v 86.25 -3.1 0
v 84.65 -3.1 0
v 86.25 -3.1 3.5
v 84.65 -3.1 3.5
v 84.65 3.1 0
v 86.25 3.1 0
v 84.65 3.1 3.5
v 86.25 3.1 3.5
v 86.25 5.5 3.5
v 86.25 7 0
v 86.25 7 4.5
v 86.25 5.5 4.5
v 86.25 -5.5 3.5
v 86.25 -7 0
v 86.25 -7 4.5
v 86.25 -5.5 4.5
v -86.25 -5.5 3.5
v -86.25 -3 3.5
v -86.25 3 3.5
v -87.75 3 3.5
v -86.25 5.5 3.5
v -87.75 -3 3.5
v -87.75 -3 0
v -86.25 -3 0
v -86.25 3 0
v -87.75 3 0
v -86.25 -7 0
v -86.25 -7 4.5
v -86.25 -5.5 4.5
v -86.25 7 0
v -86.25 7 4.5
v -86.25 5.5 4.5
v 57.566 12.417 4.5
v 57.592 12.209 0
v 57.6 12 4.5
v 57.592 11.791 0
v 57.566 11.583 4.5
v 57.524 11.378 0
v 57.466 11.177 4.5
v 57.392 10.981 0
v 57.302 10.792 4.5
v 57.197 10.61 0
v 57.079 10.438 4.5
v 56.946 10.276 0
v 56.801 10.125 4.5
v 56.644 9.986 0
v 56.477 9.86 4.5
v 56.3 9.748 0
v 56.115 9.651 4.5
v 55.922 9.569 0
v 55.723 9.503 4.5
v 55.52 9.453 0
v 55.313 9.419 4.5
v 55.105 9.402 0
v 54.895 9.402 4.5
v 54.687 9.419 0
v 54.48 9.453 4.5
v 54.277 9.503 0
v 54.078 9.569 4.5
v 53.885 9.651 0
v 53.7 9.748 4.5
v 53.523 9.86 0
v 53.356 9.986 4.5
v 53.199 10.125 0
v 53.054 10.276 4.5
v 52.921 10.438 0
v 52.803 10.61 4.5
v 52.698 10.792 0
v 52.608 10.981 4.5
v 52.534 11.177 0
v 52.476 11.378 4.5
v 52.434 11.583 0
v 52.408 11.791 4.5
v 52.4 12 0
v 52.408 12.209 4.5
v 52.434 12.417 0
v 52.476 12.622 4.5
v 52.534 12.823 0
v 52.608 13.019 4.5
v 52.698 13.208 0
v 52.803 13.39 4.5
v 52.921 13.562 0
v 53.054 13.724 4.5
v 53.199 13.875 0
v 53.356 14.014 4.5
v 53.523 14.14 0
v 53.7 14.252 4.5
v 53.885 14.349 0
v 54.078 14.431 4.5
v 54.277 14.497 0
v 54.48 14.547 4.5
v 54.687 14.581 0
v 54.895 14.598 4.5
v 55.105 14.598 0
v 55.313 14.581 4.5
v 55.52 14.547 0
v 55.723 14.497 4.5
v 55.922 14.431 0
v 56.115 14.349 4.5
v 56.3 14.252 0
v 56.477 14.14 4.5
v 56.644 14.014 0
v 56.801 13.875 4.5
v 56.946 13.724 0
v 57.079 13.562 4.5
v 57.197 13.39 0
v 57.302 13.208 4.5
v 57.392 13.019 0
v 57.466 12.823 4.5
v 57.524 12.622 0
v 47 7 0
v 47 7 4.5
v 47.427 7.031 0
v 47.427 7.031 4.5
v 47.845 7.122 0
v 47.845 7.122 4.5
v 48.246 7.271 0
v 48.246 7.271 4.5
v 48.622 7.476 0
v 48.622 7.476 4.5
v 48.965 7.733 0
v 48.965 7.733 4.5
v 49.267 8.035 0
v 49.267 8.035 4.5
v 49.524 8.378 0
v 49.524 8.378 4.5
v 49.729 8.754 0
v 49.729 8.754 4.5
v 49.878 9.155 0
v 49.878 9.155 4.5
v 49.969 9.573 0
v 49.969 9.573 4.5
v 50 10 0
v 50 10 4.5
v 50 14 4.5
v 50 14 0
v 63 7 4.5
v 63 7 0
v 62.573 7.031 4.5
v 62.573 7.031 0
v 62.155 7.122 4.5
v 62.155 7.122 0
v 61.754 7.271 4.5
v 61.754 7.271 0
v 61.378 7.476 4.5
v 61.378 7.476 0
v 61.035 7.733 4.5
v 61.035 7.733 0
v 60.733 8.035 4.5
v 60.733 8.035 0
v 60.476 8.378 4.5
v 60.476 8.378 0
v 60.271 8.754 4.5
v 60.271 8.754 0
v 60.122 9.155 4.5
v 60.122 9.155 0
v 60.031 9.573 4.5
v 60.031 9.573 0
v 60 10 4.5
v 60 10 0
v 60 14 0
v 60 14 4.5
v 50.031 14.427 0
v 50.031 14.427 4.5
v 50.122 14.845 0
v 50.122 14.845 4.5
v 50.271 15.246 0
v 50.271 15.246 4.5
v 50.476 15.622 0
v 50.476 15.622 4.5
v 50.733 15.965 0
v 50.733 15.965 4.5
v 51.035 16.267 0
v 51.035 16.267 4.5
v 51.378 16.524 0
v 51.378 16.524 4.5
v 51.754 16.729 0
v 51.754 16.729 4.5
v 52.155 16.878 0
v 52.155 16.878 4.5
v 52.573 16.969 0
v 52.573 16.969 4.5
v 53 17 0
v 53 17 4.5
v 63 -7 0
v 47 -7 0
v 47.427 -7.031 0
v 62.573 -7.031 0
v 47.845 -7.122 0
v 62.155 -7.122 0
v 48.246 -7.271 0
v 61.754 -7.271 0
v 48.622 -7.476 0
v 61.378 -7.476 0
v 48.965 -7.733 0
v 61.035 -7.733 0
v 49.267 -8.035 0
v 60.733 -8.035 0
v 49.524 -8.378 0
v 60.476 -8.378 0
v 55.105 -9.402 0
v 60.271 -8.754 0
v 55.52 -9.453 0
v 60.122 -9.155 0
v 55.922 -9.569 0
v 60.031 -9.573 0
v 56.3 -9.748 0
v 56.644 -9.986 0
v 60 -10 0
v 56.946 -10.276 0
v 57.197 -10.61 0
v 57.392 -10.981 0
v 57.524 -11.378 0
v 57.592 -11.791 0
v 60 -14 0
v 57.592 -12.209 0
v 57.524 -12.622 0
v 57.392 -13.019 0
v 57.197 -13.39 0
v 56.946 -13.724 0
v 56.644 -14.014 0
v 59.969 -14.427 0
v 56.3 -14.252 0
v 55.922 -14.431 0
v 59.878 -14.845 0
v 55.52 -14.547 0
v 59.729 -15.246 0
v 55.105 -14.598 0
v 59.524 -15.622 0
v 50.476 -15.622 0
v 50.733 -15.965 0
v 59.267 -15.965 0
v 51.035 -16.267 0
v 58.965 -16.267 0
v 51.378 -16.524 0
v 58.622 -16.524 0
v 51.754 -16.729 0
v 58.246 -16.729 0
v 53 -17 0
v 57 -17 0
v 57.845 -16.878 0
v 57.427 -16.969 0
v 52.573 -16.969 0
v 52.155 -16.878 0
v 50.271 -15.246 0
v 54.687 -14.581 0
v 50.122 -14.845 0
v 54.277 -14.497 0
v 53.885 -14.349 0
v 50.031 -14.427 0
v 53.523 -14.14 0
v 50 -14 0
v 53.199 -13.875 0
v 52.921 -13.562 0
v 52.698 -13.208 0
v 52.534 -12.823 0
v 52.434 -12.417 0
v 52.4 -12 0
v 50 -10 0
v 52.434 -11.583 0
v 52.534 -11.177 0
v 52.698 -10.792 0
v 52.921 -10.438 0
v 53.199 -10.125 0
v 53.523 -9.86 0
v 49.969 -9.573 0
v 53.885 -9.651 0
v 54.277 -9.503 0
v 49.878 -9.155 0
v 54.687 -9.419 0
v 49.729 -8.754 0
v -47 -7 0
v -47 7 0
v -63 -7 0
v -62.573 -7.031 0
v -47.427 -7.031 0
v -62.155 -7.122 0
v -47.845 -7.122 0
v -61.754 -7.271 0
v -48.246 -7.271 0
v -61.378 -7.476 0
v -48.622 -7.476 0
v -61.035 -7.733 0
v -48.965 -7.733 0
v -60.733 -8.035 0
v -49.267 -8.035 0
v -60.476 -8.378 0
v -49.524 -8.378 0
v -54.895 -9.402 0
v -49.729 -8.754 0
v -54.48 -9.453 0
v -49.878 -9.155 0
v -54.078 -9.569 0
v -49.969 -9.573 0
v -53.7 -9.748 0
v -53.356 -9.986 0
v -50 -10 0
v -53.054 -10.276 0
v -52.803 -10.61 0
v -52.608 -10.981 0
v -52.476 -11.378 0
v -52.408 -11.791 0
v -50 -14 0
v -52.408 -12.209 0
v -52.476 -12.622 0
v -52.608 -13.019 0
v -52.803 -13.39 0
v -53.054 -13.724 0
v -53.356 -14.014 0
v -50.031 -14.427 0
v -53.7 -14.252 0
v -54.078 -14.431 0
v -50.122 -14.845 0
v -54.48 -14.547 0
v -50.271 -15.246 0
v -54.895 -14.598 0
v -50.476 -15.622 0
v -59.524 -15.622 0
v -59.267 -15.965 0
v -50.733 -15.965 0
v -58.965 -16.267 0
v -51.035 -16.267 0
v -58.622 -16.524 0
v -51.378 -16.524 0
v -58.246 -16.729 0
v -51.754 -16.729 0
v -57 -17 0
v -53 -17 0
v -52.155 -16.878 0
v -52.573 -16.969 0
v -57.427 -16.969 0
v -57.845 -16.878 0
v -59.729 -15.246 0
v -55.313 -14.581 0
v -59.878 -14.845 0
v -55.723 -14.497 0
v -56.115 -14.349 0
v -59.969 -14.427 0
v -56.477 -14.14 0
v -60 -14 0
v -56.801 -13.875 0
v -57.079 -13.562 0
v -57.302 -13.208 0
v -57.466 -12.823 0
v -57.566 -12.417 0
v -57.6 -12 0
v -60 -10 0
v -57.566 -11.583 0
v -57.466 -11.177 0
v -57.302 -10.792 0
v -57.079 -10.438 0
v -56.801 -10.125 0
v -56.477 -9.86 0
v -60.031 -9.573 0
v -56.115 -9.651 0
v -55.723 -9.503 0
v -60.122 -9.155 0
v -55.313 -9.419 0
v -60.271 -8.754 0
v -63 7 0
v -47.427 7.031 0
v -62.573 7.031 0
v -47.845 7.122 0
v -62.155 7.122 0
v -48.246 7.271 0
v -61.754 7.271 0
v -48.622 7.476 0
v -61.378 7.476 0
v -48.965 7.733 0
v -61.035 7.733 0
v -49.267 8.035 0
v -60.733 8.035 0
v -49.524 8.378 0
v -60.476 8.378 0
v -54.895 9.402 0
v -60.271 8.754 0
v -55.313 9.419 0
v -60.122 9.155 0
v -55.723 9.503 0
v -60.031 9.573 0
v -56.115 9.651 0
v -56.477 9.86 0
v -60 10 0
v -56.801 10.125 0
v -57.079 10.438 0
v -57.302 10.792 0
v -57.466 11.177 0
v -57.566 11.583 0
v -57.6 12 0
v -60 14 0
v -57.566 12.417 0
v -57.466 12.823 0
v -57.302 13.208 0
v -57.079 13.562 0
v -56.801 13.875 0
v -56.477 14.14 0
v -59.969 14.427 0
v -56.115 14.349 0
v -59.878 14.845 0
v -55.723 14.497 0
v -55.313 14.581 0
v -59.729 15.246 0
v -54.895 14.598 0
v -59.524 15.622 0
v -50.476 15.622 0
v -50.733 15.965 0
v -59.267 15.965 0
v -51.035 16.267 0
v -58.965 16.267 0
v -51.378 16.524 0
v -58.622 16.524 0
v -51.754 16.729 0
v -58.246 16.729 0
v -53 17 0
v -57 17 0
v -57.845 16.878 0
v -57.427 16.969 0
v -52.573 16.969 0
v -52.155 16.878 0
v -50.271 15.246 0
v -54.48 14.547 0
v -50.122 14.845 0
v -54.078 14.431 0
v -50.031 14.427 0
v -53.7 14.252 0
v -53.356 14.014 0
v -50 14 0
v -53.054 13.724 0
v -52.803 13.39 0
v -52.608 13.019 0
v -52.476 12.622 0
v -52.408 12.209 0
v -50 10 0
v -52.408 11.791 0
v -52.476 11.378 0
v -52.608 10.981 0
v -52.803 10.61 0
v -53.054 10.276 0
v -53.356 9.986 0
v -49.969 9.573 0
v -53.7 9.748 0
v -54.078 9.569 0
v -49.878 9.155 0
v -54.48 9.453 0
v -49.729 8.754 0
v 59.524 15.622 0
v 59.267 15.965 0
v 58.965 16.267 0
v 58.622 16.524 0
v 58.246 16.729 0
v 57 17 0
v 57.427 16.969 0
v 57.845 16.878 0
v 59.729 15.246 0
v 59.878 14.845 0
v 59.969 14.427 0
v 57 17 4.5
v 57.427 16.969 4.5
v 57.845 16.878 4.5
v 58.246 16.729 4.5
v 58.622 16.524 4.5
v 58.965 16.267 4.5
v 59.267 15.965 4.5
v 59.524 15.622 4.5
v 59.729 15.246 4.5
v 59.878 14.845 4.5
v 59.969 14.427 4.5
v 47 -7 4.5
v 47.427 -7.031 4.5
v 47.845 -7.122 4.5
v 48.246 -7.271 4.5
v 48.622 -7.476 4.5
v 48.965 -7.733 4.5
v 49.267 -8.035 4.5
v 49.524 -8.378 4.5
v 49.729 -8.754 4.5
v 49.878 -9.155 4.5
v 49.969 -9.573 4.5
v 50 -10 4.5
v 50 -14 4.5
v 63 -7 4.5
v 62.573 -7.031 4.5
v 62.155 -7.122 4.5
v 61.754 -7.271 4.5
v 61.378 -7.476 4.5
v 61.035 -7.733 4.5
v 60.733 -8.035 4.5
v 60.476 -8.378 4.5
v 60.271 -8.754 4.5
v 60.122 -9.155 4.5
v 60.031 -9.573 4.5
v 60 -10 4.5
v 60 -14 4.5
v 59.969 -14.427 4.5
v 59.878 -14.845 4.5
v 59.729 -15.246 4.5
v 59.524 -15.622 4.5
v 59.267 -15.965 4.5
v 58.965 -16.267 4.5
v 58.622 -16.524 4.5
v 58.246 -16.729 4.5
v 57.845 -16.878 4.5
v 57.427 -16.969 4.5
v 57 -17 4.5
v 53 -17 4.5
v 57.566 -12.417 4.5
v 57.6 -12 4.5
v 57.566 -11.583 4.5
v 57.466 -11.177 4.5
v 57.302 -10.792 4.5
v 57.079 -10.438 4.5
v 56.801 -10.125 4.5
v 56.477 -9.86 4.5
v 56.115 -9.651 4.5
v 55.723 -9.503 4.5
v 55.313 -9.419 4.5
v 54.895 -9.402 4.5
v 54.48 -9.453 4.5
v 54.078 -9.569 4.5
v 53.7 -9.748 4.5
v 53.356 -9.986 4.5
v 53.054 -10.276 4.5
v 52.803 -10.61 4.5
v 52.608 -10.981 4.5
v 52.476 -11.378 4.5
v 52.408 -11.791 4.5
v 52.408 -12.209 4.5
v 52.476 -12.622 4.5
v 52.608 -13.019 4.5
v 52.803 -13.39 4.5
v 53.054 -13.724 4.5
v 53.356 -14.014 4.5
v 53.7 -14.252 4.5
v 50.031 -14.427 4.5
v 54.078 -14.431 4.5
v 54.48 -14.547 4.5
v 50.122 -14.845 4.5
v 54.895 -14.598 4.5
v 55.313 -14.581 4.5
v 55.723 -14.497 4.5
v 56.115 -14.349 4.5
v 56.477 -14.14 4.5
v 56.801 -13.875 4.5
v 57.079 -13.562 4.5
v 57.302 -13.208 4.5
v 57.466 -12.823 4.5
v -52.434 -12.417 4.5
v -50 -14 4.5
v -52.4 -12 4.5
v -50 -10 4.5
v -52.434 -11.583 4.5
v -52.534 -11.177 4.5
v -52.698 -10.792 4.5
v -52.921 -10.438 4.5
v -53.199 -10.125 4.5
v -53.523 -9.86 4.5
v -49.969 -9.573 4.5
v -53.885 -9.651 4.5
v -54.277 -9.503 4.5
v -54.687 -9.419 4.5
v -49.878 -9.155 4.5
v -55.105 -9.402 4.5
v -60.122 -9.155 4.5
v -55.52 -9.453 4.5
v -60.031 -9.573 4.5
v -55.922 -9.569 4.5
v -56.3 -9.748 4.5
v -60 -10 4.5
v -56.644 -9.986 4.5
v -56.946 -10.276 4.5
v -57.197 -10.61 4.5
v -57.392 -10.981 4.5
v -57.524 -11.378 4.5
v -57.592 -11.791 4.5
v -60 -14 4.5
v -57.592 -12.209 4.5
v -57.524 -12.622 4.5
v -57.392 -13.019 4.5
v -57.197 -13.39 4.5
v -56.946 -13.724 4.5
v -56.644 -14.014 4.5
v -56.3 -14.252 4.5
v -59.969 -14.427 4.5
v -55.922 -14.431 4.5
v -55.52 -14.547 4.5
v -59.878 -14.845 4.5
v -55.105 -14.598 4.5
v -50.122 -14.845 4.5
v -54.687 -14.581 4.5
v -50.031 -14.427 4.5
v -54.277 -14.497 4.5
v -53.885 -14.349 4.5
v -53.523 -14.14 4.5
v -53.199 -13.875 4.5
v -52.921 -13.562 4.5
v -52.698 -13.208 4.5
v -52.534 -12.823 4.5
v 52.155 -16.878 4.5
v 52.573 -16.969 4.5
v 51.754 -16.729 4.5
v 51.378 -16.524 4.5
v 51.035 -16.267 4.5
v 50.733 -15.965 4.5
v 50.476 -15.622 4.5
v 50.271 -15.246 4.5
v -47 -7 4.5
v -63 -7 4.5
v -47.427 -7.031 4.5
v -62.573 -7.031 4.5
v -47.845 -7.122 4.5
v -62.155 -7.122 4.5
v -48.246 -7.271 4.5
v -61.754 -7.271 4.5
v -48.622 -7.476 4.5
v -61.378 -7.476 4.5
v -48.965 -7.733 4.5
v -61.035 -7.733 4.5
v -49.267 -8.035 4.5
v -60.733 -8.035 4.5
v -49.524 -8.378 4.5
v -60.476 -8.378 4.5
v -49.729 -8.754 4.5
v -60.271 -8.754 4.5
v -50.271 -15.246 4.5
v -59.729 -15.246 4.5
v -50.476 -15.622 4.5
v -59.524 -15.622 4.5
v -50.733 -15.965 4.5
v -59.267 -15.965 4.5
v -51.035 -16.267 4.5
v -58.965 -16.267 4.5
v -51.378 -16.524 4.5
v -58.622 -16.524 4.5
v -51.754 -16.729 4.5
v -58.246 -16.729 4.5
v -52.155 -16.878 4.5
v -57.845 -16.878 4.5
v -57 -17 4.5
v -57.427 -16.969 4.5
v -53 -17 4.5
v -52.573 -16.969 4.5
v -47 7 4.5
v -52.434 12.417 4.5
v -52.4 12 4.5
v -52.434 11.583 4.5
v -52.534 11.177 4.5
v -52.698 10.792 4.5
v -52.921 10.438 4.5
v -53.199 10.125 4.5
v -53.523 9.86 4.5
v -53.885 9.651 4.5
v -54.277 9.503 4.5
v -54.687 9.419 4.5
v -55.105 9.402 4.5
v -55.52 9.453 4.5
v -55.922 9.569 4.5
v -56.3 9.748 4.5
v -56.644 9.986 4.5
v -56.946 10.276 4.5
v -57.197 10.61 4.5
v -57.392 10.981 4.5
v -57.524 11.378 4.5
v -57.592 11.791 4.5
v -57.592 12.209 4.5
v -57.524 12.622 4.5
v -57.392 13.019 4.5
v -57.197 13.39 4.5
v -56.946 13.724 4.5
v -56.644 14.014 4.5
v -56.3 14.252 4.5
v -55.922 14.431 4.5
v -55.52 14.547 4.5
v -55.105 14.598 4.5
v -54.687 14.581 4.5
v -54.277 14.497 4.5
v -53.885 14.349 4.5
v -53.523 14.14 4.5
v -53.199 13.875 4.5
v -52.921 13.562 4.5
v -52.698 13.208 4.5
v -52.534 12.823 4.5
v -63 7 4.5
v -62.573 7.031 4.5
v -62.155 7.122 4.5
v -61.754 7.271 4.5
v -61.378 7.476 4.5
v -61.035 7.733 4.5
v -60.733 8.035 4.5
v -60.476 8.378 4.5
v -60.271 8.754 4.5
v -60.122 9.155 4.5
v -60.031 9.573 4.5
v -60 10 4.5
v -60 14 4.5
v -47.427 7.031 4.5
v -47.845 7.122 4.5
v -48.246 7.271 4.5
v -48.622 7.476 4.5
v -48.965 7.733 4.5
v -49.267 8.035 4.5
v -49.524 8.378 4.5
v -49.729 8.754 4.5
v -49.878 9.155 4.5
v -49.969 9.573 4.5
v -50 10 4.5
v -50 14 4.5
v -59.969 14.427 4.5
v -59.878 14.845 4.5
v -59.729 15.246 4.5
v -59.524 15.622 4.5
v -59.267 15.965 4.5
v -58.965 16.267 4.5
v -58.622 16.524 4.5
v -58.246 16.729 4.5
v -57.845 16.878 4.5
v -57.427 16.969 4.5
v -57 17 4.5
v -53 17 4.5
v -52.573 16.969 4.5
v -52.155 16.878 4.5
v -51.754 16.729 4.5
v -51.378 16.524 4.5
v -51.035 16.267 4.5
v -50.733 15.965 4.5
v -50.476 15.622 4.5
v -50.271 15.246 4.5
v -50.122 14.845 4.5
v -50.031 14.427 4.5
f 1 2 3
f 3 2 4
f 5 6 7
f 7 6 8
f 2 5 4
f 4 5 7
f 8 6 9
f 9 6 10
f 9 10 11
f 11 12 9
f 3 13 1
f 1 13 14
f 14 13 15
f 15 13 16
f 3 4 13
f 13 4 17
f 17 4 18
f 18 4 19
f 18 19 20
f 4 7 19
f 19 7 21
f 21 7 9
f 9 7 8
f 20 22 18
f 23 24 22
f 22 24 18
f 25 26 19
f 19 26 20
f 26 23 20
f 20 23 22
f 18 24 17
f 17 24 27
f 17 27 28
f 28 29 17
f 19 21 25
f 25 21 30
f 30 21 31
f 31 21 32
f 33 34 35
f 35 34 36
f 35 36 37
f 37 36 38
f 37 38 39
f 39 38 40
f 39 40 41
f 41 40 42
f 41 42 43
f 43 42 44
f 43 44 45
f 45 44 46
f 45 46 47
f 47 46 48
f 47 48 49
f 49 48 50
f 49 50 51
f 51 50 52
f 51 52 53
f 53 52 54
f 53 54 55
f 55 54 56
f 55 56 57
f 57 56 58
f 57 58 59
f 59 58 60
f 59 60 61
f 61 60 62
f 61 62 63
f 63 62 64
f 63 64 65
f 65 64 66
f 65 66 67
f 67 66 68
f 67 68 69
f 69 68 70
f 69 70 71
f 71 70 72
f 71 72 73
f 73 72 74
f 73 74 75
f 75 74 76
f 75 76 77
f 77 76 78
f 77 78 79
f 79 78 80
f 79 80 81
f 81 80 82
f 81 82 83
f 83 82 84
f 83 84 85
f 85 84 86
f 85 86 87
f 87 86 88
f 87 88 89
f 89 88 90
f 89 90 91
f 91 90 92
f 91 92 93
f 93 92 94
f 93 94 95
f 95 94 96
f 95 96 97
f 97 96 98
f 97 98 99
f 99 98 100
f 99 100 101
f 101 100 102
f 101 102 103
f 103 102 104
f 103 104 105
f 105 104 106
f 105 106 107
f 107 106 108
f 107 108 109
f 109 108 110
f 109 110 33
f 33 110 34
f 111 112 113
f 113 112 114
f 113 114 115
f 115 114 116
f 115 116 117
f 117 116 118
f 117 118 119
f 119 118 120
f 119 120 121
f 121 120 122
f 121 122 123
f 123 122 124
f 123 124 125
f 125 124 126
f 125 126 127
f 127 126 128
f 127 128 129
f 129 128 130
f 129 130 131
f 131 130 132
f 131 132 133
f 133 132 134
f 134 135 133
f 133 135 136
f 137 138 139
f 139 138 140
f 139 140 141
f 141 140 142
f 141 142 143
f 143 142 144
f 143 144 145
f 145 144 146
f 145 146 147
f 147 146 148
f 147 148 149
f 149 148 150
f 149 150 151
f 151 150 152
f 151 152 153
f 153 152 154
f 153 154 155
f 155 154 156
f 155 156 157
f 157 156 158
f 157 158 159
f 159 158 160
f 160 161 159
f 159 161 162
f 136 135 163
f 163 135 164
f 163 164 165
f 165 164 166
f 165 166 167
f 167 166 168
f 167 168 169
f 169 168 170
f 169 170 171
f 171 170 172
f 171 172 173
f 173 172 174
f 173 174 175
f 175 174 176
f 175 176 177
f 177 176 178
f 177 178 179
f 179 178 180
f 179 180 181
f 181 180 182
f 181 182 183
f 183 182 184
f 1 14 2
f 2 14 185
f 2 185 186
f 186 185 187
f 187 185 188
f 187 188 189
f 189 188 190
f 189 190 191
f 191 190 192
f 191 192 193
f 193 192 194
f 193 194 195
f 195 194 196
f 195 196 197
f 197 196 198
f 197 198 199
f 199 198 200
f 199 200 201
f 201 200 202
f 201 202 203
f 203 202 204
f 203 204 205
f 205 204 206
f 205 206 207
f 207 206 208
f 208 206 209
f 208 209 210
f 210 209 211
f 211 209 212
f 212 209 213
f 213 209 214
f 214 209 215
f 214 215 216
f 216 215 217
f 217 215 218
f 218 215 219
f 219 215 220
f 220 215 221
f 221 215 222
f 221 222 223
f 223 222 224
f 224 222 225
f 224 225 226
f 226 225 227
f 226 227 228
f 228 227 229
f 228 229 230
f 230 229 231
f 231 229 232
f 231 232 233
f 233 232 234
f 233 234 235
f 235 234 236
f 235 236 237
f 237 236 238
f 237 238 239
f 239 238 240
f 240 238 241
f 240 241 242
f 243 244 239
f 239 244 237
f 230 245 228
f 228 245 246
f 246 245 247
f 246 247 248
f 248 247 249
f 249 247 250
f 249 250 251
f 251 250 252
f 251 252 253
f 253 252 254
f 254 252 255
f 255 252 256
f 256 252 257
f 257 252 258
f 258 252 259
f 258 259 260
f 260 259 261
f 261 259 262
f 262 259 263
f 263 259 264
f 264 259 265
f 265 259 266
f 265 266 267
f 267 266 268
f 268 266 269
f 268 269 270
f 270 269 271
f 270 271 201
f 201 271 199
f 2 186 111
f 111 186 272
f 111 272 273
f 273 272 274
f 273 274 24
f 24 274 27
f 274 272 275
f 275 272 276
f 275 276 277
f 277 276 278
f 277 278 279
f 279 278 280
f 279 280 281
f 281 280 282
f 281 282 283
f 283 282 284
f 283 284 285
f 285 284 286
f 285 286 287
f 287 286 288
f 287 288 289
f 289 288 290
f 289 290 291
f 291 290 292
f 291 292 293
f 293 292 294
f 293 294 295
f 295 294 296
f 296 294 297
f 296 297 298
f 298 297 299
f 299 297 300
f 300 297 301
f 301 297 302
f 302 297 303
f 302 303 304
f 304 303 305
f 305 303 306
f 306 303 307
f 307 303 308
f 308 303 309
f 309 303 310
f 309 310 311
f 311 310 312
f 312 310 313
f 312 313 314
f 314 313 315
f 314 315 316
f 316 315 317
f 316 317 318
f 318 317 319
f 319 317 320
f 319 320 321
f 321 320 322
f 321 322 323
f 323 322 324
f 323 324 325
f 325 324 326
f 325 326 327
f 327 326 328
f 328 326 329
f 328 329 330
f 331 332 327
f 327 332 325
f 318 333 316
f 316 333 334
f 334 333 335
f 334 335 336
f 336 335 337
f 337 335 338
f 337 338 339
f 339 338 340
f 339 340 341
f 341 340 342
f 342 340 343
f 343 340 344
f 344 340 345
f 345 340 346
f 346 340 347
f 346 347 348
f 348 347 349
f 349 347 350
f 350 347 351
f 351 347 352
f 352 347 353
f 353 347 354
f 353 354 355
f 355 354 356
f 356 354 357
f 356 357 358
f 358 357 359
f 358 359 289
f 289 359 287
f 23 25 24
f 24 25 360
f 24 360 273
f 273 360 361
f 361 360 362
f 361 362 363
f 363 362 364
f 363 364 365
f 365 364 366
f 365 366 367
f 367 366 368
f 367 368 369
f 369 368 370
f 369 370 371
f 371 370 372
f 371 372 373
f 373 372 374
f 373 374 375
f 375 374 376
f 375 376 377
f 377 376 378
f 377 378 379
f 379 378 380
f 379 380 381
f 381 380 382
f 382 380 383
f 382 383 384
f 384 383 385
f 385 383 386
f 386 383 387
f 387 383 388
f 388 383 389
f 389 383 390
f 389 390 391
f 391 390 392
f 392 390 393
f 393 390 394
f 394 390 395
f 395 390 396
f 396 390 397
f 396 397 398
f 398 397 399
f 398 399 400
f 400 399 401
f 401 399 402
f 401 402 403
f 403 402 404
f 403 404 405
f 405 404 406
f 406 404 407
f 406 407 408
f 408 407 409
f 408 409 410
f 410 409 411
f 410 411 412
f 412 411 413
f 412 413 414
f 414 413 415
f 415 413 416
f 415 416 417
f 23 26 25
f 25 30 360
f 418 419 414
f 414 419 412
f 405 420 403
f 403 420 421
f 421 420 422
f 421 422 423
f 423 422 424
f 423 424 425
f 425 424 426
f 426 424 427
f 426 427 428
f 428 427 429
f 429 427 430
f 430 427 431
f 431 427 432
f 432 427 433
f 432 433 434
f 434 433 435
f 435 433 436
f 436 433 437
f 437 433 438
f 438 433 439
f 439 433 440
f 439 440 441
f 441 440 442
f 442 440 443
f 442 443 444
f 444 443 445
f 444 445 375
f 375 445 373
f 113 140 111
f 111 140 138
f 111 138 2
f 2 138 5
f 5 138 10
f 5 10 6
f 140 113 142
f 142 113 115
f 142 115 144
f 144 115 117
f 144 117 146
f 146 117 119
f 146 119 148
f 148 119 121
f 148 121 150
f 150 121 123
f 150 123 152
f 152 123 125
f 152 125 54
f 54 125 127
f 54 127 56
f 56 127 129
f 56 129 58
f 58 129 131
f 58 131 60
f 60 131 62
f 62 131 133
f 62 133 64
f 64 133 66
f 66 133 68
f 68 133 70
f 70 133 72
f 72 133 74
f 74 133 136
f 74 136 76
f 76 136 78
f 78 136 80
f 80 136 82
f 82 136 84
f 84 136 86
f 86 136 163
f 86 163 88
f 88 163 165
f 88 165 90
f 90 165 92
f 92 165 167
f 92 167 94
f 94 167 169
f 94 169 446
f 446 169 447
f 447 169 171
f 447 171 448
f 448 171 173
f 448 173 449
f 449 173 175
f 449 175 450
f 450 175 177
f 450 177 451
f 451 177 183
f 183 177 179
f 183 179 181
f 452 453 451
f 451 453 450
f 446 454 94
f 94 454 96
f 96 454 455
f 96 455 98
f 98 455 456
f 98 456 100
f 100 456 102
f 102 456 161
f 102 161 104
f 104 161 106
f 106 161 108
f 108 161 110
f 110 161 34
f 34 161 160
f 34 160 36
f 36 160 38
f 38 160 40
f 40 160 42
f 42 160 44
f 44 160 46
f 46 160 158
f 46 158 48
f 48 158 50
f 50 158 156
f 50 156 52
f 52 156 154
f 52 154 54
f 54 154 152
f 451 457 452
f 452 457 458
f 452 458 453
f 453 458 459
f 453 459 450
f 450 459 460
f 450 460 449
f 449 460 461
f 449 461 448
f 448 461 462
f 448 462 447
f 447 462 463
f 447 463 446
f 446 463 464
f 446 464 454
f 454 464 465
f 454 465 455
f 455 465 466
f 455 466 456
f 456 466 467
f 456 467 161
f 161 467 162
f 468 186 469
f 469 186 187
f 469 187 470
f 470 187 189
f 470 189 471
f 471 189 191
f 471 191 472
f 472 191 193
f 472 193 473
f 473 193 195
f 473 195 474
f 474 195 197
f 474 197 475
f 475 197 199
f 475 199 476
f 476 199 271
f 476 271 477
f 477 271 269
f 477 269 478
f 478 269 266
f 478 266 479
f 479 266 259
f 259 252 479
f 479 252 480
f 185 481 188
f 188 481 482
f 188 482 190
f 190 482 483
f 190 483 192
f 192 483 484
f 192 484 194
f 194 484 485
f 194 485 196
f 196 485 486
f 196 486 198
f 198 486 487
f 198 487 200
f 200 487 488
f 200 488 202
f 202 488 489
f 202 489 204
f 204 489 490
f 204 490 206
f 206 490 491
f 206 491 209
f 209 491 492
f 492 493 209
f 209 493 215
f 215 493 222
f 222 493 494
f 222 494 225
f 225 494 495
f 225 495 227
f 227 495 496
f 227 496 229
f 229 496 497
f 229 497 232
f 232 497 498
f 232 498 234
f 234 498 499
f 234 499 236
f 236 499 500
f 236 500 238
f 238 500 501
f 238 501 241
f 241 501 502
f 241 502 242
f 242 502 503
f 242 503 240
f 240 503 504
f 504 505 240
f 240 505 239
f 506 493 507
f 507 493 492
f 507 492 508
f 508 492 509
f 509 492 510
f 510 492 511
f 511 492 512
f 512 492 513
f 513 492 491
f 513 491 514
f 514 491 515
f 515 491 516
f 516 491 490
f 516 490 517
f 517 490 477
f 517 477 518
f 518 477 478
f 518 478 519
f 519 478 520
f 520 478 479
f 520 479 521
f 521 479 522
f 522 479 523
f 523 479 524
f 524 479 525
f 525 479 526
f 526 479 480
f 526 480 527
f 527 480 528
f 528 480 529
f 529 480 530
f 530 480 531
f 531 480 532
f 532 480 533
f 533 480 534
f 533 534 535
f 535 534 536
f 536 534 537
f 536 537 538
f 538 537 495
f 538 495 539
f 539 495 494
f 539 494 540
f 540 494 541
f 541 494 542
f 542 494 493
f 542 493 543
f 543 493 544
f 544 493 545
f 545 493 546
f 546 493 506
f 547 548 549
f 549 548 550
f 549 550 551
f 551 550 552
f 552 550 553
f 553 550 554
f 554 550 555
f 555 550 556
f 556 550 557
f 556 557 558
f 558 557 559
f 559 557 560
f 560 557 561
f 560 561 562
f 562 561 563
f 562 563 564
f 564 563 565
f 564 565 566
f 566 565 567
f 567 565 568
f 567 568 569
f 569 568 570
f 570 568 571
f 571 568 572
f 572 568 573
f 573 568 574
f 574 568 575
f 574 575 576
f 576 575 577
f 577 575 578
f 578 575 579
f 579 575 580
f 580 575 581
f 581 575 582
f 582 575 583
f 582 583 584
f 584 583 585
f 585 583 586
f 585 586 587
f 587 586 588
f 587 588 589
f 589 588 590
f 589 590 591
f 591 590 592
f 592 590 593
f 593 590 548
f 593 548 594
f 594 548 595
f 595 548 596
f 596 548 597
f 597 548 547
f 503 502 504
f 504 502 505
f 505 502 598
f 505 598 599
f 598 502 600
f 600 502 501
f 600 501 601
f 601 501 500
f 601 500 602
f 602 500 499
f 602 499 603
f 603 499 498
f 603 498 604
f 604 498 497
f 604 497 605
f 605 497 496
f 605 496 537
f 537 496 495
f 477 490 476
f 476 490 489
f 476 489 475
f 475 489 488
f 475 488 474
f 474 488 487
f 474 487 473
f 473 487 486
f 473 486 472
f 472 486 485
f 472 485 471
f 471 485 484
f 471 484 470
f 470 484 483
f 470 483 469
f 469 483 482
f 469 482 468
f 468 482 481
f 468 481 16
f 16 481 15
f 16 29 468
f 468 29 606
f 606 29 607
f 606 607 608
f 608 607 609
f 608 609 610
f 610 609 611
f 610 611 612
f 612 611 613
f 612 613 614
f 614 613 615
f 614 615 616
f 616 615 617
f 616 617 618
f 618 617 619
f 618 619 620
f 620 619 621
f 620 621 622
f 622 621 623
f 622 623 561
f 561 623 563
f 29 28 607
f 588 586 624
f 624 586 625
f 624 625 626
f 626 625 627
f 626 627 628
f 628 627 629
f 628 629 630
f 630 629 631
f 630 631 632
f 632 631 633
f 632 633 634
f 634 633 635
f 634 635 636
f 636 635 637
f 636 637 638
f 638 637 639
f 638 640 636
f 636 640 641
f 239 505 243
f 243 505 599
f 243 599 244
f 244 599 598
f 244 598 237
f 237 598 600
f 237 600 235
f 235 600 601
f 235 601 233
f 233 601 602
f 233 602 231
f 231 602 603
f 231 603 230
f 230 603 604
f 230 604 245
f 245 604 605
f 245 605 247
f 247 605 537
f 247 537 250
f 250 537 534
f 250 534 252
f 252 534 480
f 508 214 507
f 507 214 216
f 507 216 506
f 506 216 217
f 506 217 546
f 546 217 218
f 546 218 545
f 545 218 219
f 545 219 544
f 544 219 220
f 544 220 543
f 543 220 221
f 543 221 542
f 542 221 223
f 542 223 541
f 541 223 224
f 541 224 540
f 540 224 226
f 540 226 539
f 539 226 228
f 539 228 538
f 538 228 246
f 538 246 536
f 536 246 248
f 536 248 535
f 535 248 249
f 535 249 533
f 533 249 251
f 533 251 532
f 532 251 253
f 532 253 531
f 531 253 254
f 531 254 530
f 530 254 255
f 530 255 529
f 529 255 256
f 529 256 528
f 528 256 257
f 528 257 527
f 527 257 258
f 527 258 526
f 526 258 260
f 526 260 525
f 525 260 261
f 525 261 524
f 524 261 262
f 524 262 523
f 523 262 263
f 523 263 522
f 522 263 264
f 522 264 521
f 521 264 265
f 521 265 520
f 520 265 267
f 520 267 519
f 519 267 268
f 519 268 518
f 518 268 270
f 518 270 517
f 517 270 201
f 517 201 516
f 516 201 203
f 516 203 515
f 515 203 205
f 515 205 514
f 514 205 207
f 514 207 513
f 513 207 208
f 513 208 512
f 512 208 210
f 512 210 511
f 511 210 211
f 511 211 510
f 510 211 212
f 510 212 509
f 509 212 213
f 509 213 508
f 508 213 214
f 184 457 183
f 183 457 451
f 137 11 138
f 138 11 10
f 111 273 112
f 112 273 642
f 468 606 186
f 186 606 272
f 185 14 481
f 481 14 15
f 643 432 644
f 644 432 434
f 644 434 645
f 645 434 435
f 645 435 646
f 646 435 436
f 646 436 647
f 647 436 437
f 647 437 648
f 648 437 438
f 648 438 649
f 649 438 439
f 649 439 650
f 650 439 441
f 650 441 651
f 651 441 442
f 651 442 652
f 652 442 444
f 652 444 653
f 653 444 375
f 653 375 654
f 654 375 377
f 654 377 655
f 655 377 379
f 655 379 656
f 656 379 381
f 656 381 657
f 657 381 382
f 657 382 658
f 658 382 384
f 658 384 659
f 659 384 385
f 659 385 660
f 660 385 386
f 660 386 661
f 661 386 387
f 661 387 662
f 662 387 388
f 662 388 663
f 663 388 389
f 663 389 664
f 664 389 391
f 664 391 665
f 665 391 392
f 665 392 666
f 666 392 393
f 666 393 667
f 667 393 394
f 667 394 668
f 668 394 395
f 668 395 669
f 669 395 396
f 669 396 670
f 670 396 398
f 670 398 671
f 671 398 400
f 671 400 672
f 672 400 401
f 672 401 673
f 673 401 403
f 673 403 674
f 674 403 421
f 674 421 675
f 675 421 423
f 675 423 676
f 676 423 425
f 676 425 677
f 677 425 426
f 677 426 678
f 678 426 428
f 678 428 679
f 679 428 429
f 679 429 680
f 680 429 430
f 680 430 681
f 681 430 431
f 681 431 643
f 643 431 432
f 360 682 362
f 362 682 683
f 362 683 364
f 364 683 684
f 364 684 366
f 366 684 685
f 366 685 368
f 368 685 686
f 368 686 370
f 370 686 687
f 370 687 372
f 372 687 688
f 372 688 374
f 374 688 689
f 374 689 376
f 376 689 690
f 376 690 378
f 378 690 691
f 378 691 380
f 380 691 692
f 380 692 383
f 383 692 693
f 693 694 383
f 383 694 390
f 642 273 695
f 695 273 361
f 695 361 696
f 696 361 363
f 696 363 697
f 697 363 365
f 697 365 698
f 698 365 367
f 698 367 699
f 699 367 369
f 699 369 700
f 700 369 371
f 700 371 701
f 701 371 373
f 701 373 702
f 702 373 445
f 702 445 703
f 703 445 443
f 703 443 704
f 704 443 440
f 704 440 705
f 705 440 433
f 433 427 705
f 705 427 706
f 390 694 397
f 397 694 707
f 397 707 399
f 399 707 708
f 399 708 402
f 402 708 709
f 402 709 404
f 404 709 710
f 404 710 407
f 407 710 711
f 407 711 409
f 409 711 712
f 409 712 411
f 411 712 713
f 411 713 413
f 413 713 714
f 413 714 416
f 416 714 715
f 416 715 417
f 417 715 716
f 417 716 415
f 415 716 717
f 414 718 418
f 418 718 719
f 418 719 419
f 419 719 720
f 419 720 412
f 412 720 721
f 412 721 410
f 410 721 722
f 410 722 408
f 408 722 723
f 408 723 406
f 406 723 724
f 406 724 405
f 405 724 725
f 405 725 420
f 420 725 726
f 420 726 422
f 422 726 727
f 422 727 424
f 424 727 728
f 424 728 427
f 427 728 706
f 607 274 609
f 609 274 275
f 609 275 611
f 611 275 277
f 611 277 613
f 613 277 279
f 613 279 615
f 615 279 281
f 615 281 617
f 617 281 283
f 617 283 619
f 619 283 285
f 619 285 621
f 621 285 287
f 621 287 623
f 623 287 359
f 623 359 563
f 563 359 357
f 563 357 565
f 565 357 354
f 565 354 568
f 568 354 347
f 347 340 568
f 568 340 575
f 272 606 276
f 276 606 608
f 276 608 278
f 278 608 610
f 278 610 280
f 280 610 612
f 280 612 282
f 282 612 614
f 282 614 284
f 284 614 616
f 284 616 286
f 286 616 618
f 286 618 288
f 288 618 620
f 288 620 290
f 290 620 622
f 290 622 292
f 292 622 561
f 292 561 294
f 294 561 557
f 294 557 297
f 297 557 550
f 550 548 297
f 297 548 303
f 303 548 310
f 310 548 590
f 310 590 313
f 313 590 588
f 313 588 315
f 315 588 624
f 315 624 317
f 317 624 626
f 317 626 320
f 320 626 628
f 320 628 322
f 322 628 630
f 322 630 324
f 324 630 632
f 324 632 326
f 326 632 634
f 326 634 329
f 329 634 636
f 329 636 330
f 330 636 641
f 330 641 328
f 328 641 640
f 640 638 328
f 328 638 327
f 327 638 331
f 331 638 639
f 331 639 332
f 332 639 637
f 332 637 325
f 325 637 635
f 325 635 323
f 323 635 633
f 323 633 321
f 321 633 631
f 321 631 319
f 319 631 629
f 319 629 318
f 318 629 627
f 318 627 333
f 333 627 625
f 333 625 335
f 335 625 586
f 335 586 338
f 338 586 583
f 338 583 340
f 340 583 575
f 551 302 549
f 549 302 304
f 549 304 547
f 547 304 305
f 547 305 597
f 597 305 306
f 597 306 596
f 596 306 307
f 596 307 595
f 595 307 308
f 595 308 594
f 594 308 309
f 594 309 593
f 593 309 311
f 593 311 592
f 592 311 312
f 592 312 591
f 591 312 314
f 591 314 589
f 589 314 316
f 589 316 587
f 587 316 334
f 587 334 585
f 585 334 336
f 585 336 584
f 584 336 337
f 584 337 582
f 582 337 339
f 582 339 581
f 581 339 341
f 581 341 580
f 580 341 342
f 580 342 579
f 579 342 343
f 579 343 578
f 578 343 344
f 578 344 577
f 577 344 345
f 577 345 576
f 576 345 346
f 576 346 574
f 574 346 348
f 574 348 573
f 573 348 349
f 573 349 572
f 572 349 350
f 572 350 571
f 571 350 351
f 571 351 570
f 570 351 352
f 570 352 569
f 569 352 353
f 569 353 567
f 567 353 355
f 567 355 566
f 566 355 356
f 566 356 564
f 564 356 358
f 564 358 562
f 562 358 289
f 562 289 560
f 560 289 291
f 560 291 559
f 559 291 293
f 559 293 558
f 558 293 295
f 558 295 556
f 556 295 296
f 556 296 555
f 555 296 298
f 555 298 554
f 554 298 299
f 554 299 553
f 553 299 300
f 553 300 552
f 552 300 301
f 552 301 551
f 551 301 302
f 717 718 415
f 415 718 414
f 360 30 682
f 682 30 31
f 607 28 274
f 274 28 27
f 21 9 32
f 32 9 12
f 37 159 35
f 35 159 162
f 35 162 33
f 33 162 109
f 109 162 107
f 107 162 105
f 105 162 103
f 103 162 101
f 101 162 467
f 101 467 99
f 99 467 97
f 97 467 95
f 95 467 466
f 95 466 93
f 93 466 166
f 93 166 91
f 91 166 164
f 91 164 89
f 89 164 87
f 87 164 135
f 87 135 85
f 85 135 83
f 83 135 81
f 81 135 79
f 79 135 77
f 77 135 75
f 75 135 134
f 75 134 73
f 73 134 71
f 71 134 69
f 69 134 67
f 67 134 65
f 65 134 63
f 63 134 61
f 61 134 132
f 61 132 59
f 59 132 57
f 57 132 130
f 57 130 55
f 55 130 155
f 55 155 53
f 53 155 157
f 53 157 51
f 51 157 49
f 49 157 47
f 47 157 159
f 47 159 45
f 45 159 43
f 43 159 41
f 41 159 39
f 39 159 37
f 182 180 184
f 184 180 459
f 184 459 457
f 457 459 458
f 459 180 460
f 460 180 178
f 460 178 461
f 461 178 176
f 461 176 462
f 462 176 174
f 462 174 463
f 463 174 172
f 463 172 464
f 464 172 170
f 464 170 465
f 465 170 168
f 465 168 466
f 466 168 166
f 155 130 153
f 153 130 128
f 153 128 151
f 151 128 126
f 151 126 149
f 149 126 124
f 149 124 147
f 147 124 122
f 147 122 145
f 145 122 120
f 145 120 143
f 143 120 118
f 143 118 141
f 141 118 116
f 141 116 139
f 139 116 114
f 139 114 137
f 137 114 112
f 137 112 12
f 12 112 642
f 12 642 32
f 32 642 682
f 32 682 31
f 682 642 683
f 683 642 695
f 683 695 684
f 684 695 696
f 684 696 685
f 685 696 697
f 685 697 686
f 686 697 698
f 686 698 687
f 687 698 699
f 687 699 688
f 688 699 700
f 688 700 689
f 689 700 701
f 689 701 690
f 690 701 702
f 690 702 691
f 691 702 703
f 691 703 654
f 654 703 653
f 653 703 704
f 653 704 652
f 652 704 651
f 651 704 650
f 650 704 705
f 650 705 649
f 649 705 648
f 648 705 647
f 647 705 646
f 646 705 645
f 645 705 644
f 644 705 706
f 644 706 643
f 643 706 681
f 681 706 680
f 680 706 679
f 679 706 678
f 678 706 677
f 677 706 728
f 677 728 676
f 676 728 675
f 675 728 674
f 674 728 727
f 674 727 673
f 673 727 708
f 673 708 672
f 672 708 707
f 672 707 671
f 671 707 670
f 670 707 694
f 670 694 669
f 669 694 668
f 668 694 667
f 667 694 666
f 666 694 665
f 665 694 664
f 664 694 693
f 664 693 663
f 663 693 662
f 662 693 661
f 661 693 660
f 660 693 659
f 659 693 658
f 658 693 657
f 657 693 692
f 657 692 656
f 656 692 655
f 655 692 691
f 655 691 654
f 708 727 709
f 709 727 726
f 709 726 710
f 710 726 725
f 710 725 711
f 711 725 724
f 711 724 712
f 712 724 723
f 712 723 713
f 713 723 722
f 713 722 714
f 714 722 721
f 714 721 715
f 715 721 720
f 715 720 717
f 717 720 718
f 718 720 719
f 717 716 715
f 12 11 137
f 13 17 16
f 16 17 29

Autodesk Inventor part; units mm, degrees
ref_plane "YZ Plane" through (0, 0, 0) normal (1, 0, 0) x (0, 1, 0)
ref_plane "XZ Plane" through (0, 0, 0) normal (0, 1, 0) x (-1, 0, 0)
ref_plane "XY Plane" through (0, 0, 0) normal (0, 0, 1) x (1, 0, 0)
sketch "Skizze2" plane through (0, 0, 0) normal (0, 0, 1) x (1, 0, 0)
  line L0 (-86.25, 7) -> (86.25, 7)
  line L1 (86.25, 7) -> (86.25, -7)
  line L2 (86.25, -7) -> (-86.25, -7)
  line L3 (-86.25, -7) -> (-86.25, 7)
  line L4 (0, 9.8) -> (0, -9.8) projected
  line L5 (-120.75, 0) -> (120.75, 0) projected
  point P0 (0, 0)
  point P1 (-86.25, 0)
  point P2 (0, 7)
  dimension "d0" = 14
  dimension "d1" = 172.5
extrude "Extrusion1" add sketch "Skizze2" along normal blind 3.5
sketch "Skizze3" plane through (0, 0, 3.5) normal (0, 0, 1) x (1, 0, 0)
  line L0 (86.25, -7) -> (86.25, 7) projected
  line L1 (86.25, 7) -> (-86.25, 7) projected
  line L2 (-86.25, 7) -> (-86.25, -7) projected
  line L3 (-86.25, -7) -> (86.25, -7) projected
  line L4 (86.25, 7) -> (-86.25, 7)
  line L5 (-86.25, 7) -> (-86.25, 5.5)
  line L6 (-86.25, 5.5) -> (86.25, 5.5)
  line L7 (86.25, 5.5) -> (86.25, 7)
  line L8 (-86.25, 7) -> (-86.25, -7) projected
  line L9 (-86.25, -7) -> (86.25, -7)
  line L10 (86.25, -7) -> (86.25, -5.5)
  line L11 (86.25, -5.5) -> (-86.25, -5.5)
  line L12 (-86.25, -5.5) -> (-86.25, -7)
  point P0 (0, 0)
  dimension "d4" = 1.5
  dimension "d5" = 1.5
extrude "Extrusion2" add sketch "Skizze3" along normal blind 1 contours L3 L2 L11 L0 | L6 L2 L1 L0
sketch "Skizze4" plane through (0, 0, 0) normal (0, 0, -1) x (-1, 0, 0)
  line L0 (86.25, -7) -> (-86.25, -7) projected
  line L1 (155.9309, -7) -> (147.0048, -7)
  line L2 (60, -7) -> (50, -7)
  line L3 (50, -7) -> (50, -17)
  line L4 (50, -17) -> (60, -17)
  line L5 (60, -17) -> (60, -7)
  line L6 (50, 7) -> (60, 7)
  line L7 (60, 7) -> (60, 17)
  line L8 (60, 17) -> (50, 17)
  line L9 (50, 17) -> (50, 7)
  line L10 (86.25, -7) -> (-86.25, -7) projected
  line L11 (-86.25, 7) -> (86.25, 7) projected
  line L12 (86.25, 7) -> (86.25, -7) projected
  line L13 (-60, -9.0118) -> (-60, -17) construction
  line L14 (-60, -17) -> (-50, -17) construction
  line L15 (-50, -17) -> (-50, -7) construction
  line L16 (-86.25, -7) -> (-86.25, 7) projected
  point P0 (0, 0)
  point P1 (50, -7)
  point P2 (55, -17)
  point P3 (-55, -17)
  point P4 (55, -12)
  point P5 (55, 12)
  point P6 (60, -12)
  point P7 (60, 12)
  dimension "d8" = 10
  dimension "d9" = 10
  dimension "d30" = 110
  dimension "d31" = 10
  dimension "d32" = 24
  dimension "d33" = 55
extrude "Extrusion3" add sketch "Skizze4" against normal up to surface (4.5 mm away) contours L5 L4 L3 L0 | L6 L9 L8 L7
sketch "Skizze5" plane through (0, 0, 0) normal (0, 0, -1) x (-1, 0, 0)
  line L0 (50, -17) -> (60, -17) projected
  line L1 (50, -7) -> (50, -17) projected
  line L2 (50, 17) -> (50, 7) projected
  point P0 (0, 0)
  point P1 (55, -12)
  point P2 (55, 12)
  point P3 (55, -17)
  point P4 (50, -12)
  point P5 (50, 12)
  dimension "d13" = 24
hole "Bohrung1" at (-55, -12, 0) direction (0, 0, 1) diameter 5.2 end through all
fillet "Rundung1" radius 3 8 edges at (-60, -17, 2.25) (-50, -17, 2.25) (-50, -7, 2.25) (-60, -7, 2.25) (-50, 17, 2.25) (-60, 17, 2.25) (-50, 7, 2.25) (-60, 7, 2.25)
pattern_linear "Rechteckige Anordnung1" count 2 spacing 24 along (0, 1, 0) of "Bohrung1"
pattern_linear "Rechteckige Anordnung2" count 2 spacing 110 along (1, 0, 0) of "Rundung1", "Bohrung1", "Extrusion3", "Rechteckige Anordnung1"
sketch "Skizze7" plane through (0, 0, 3.5) normal (0, 0, 1) x (1, 0, 0)
  line L0 (-86.25, 5.5) -> (-86.25, -5.5) projected
  line L1 (-86.25, 3) -> (-87.75, 3)
  line L2 (-87.75, 3) -> (-87.75, -3)
  line L3 (-87.75, -3) -> (-86.25, -3)
  line L4 (-86.25, -3) -> (-86.25, 3)
  line L5 (86.25, -3.1) -> (84.65, -3.1)
  line L6 (84.65, -3.1) -> (84.65, 3.1)
  line L7 (84.65, 3.1) -> (86.25, 3.1)
  line L8 (86.25, 3.1) -> (86.25, -3.1)
  line L9 (86.25, -5.5) -> (86.25, 5.5) projected
  point P0 (0, 0)
  point P1 (-87.75, 0)
  point P2 (-86.25, 0)
  point P3 (-86.25, 0)
  point P4 (84.65, 0)
  point P5 (86.25, 0)
  point P6 (86.25, 0)
  dimension "d37" = 1.5
  dimension "d38" = 6
  dimension "d41" = 1.6
  dimension "d44" = 6.2
extrude "Extrusion5" add sketch "Skizze7" against normal up to surface (3.5 mm away) contours L0 L3 L2 L1
extrude "Extrusion6" cut sketch "Skizze7" against normal through all contours L5 L6 L7 L8
equation "\"d5\" = d4"
equation "\"d9\" = d8"
equation "\"d33\" = 0.5 * d30"
equation "\"d24\" = d13"
properties part number "LED_Strip_Halter" material "PA 6 schwarz"
